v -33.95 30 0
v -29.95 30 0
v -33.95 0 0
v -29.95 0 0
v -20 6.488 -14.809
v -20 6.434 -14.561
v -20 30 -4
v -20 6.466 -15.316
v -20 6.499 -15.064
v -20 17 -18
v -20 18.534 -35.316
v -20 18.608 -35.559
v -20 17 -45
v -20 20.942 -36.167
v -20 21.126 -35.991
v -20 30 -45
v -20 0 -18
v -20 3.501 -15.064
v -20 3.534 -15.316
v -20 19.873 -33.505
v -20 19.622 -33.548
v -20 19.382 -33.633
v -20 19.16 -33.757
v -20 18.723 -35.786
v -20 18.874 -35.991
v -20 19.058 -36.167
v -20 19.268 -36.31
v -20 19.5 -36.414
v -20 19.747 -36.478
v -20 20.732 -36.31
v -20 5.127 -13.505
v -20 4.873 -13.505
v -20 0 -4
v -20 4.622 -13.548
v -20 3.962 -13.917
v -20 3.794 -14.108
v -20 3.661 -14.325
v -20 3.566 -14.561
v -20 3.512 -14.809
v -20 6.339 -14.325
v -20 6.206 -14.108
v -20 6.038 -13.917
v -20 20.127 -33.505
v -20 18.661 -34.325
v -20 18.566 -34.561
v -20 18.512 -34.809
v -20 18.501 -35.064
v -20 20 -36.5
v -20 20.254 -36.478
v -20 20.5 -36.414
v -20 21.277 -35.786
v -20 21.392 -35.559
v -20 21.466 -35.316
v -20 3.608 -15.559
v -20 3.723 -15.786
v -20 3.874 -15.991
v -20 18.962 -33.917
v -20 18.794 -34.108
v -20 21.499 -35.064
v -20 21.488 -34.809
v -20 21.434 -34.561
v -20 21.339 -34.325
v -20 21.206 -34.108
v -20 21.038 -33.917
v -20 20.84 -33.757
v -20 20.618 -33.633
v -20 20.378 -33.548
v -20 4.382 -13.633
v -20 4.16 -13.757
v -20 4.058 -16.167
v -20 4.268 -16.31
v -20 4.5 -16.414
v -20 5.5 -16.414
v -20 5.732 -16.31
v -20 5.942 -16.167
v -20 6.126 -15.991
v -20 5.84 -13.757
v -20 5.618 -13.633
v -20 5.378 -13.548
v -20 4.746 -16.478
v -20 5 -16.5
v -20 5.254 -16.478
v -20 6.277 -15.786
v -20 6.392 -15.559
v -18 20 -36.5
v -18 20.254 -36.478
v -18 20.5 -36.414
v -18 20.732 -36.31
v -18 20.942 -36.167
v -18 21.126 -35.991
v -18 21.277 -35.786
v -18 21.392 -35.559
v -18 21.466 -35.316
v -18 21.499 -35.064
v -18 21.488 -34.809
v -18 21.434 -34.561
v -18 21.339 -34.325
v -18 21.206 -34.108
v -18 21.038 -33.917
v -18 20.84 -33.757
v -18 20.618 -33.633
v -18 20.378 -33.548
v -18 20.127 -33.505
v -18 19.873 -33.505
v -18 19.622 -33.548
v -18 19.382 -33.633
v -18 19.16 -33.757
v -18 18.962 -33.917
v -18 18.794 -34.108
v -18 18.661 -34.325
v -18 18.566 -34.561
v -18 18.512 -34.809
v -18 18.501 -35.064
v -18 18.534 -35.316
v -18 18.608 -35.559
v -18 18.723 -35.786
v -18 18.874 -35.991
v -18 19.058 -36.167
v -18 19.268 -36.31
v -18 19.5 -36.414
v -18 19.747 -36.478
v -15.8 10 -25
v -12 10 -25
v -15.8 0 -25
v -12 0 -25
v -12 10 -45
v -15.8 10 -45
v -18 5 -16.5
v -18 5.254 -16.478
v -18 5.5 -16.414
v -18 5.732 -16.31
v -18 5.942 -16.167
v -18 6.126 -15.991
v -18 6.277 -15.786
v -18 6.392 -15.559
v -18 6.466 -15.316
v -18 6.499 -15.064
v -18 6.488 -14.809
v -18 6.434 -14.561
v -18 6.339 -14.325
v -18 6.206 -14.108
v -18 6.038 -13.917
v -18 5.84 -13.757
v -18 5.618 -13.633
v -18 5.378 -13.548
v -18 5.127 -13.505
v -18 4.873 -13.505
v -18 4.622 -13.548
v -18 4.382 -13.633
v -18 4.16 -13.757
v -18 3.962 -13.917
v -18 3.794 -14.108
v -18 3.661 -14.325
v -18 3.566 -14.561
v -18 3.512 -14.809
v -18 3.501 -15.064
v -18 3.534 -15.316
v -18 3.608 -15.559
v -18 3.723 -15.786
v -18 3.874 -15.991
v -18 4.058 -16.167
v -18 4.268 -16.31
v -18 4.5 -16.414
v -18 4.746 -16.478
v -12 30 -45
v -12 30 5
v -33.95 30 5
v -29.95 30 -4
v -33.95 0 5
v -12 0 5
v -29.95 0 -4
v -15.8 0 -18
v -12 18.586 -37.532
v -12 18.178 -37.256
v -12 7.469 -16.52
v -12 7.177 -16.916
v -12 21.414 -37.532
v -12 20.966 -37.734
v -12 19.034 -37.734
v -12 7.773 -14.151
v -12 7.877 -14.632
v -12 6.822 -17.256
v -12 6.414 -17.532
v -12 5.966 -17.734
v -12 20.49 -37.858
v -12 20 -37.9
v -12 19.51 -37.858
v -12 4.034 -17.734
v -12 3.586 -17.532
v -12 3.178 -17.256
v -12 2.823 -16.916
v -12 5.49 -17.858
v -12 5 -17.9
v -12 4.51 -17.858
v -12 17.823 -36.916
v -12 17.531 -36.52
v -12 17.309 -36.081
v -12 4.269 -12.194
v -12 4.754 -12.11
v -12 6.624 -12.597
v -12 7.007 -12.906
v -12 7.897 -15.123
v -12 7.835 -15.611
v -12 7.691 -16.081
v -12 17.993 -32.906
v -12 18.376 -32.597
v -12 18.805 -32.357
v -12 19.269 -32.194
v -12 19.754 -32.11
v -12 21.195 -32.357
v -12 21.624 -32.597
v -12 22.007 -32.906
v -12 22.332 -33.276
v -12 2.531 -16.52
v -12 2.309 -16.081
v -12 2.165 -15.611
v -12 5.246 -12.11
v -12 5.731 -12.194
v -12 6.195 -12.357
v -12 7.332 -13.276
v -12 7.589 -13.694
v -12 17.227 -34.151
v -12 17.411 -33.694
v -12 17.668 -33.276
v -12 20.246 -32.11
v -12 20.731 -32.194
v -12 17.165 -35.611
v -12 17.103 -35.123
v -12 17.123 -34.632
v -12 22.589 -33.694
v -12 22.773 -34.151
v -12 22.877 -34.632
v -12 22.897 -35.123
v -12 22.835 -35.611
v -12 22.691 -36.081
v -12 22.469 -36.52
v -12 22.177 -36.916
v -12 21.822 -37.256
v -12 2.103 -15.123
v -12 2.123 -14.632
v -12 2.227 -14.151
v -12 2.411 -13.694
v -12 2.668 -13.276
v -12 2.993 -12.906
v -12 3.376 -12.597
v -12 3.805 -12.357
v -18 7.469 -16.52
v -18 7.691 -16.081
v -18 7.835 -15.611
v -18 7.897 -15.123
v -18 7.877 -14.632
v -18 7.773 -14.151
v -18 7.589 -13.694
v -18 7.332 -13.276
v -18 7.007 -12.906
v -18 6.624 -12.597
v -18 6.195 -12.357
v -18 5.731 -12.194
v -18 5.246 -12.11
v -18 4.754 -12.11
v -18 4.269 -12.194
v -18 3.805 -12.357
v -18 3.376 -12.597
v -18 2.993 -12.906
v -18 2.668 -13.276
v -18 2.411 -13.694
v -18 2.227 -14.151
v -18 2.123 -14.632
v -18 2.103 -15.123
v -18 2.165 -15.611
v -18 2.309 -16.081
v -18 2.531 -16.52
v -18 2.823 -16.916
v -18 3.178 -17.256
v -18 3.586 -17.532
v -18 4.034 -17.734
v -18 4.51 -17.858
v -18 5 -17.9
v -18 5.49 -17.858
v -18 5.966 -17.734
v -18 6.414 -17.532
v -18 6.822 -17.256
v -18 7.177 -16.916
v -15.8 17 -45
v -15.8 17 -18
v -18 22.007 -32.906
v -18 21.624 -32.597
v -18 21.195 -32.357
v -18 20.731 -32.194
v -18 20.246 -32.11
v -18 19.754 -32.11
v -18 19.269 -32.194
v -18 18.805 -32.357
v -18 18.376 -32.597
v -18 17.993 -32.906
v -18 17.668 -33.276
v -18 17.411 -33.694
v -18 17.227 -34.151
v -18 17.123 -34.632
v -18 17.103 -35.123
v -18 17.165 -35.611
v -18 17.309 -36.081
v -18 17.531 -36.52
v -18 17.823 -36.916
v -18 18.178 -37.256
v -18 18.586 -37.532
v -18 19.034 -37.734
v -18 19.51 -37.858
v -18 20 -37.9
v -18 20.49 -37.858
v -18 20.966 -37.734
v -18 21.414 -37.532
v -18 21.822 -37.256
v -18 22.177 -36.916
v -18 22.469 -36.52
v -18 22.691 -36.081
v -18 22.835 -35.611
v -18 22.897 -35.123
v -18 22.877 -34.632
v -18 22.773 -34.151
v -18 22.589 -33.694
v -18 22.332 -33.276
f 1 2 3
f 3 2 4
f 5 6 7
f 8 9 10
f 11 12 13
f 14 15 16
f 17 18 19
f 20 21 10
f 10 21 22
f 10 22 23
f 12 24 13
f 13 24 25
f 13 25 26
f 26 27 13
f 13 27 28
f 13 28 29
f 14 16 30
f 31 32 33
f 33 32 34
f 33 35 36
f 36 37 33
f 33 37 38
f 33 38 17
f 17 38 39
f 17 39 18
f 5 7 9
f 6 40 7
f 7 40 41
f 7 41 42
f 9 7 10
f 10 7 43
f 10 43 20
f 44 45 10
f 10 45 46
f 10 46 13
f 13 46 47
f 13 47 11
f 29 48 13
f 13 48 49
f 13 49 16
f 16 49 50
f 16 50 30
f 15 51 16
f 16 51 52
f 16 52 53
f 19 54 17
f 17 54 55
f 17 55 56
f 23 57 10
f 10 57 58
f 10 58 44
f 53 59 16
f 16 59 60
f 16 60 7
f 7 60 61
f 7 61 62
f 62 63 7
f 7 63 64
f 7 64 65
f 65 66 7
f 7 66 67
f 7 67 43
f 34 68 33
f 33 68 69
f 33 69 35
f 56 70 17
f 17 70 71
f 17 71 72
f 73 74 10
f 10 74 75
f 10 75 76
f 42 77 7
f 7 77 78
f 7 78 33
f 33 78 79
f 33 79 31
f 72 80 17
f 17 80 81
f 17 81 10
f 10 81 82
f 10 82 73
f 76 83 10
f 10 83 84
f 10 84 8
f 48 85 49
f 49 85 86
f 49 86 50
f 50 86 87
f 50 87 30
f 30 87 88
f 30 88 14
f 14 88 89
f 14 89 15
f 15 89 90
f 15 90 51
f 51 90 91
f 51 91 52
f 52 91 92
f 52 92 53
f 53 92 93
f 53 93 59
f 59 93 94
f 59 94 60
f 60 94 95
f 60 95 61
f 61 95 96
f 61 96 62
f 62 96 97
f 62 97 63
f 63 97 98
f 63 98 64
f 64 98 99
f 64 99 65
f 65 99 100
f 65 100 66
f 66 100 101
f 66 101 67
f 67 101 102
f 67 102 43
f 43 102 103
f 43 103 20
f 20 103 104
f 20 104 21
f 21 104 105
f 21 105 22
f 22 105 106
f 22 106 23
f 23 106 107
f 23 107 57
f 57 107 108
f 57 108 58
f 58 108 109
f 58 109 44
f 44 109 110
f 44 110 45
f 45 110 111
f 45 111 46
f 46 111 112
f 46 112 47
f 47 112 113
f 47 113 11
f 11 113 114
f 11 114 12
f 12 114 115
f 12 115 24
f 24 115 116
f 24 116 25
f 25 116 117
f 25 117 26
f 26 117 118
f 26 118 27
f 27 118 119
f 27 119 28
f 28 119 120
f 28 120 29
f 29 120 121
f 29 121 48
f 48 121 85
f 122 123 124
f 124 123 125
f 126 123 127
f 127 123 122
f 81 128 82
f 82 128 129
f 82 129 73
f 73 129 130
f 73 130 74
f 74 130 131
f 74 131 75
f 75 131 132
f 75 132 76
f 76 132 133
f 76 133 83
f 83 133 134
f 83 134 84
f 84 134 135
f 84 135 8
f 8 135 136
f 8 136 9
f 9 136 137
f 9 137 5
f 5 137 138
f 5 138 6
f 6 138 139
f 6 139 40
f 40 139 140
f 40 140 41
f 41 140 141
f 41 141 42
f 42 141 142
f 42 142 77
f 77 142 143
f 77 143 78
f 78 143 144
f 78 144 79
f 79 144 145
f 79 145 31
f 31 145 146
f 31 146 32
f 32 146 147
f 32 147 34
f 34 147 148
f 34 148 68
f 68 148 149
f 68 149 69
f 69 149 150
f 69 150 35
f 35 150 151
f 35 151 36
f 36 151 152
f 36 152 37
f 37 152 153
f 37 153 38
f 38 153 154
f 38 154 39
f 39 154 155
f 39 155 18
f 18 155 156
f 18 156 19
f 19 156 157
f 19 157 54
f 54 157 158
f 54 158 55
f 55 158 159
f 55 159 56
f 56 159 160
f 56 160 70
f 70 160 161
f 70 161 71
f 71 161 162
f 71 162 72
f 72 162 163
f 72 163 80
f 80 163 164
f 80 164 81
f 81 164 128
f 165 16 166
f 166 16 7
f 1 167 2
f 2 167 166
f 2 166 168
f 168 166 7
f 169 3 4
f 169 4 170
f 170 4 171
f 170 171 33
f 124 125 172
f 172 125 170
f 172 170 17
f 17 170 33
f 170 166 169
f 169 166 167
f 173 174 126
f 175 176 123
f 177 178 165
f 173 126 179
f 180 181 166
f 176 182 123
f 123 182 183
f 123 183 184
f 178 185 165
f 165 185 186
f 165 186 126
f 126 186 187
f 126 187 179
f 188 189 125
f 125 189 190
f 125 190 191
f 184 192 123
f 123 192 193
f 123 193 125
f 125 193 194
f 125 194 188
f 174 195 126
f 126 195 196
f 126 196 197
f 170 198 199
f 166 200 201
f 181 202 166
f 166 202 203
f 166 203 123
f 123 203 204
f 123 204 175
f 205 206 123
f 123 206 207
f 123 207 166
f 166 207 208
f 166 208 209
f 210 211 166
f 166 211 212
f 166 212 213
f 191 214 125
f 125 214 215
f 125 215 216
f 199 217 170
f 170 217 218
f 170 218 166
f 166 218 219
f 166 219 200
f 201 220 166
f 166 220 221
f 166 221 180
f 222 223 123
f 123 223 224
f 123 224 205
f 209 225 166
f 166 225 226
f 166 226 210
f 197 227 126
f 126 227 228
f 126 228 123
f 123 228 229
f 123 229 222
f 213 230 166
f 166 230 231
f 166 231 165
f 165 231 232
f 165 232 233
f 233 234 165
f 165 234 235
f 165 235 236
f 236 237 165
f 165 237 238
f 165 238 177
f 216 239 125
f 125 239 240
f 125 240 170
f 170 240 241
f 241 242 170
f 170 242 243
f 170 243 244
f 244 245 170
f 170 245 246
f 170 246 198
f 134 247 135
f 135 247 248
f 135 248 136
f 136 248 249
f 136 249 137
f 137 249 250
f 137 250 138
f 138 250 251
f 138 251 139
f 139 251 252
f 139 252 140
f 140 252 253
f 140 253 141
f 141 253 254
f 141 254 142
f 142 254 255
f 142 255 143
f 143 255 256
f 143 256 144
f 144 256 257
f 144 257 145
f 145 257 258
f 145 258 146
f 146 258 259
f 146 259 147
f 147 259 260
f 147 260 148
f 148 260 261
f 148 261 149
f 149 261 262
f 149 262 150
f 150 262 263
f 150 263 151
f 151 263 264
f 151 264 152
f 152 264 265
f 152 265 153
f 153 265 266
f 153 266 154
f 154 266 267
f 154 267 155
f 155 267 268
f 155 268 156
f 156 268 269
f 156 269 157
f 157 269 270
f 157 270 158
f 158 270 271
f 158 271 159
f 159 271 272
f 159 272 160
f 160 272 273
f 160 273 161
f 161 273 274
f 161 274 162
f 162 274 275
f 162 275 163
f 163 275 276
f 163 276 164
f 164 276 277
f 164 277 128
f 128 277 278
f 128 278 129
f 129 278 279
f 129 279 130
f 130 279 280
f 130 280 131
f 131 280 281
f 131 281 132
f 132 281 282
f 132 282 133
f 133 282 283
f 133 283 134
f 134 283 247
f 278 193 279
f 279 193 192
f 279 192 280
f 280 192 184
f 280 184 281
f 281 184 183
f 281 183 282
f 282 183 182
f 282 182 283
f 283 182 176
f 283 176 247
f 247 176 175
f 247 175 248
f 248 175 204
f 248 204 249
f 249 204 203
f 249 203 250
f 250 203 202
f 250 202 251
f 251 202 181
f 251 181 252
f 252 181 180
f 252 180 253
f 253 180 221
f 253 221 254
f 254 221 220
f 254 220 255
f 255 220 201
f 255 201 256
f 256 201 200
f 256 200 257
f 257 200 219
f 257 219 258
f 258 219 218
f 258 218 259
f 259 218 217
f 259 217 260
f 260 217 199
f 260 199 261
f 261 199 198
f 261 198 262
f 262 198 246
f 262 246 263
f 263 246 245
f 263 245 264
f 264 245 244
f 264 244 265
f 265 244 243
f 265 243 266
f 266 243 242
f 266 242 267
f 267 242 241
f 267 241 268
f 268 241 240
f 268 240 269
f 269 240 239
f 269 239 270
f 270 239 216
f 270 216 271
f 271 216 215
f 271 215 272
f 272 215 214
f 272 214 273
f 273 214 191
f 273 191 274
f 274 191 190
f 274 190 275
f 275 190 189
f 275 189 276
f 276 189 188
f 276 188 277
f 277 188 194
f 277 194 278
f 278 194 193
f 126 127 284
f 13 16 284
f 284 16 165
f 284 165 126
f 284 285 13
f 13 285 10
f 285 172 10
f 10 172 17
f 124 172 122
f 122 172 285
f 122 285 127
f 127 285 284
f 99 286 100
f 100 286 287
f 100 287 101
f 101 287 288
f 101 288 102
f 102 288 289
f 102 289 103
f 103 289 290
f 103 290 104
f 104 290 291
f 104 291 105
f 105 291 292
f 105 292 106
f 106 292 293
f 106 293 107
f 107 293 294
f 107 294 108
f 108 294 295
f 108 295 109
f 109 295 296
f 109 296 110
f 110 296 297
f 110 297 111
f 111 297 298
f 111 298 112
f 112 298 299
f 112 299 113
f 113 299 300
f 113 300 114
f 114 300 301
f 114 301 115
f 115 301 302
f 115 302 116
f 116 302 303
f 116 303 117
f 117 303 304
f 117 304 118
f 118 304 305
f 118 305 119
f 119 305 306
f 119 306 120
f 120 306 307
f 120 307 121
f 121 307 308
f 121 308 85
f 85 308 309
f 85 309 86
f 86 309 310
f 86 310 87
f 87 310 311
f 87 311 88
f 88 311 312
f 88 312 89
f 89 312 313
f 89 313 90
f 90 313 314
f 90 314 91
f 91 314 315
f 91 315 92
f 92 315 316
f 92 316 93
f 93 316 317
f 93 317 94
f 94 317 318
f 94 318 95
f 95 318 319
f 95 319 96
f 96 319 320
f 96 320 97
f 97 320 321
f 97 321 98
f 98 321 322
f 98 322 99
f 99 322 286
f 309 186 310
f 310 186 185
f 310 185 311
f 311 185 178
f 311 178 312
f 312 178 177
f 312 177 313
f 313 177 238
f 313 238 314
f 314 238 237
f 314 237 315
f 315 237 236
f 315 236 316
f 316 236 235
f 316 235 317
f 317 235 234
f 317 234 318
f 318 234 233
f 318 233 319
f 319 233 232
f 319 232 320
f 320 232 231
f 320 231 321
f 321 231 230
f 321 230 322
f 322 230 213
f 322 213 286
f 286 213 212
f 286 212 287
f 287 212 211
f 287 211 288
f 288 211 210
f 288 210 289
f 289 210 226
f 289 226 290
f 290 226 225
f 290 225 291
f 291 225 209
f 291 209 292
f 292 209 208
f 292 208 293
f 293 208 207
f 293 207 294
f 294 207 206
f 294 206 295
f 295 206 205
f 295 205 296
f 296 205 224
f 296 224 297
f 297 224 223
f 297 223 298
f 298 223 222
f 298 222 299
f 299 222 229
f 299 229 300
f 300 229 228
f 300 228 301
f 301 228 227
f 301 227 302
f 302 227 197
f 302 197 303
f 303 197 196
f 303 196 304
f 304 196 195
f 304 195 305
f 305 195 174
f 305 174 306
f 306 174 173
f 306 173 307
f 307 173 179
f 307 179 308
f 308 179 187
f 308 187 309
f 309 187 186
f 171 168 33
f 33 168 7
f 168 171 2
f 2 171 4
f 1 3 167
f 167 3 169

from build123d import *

# Parameters (mm, degrees)
SKETCH_1_W           = 40
SKETCH_1_H           = 30
EXTRUDE_1_DEPTH      = 5
SKETCH_2_W           = 5
SKETCH_2_H           = 30
EXTRUDE_2_DEPTH      = 20
SKETCH_3_W           = 20
SKETCH_3_H           = 30
EXTRUDE_3_DEPTH      = 5
SKETCH_4_W           = 15
SKETCH_4_H           = 30
CUT_EXTRUDE_1_DEPTH  = 5
SKETCH_6_R           = 1.5
CUT_EXTRUDE_3_DEPTH  = 5
SKETCH_7_W           = 15
SKETCH_7_H           = 30
CUT_EXTRUDE_4_DEPTH  = 5
SKETCH_8_W           = 5
SKETCH_8_H           = 30
EXTRUDE_4_DEPTH      = 20
SKETCH_9_W           = 30
SKETCH_9_H           = 30
EXTRUDE_5_DEPTH      = 3
SKETCH_10_R          = 1.5
CUT_EXTRUDE_5_DEPTH  = 13
SKETCH_11_R          = 2.9
CUT_EXTRUDE_6_DEPTH  = 6
SKETCH_12_W          = 8
SKETCH_12_H          = 20
EXTRUDE_6_DEPTH      = 20
CUT_EXTRUDE_7_DEPTH  = 4.2
SKETCH_14_R          = 1.5
CUT_EXTRUDE_8_DEPTH  = 14.2
SKETCH_15_R          = 2.9
CUT_EXTRUDE_9_DEPTH  = 6
SKETCH_16_W          = 4
SKETCH_16_H          = 30
EXTRUDE_7_DEPTH      = 9.95
SKETCH_17_W          = 5
SKETCH_17_H          = 30
CUT_EXTRUDE_10_DEPTH = 26.05


with BuildPart() as part:
    # 草图1 → 凸台-拉伸1 (new body)
    with BuildSketch(Plane.XY):
        with Locations((-20, 15)):
            Rectangle(SKETCH_1_W, SKETCH_1_H)
    extrude(amount=EXTRUDE_1_DEPTH)

    # 草图2 → 凸台-拉伸2 (add)
    with BuildSketch(Plane.ZY.offset(40)):
        with Locations((2.5, 15)):
            Rectangle(SKETCH_2_W, SKETCH_2_H)
    extrude(amount=EXTRUDE_2_DEPTH)

    # 草图3 → 凸台-拉伸3 (add)
    with BuildSketch(Plane(origin=(0, 0, 0), x_dir=(-1, 0, 0), z_dir=(0, 0, -1))):
        with Locations((10, 15)):
            Rectangle(SKETCH_3_W, SKETCH_3_H)
    extrude(amount=EXTRUDE_3_DEPTH)

    # 草图4 → 切除-拉伸1 (cut)
    with BuildSketch(Plane.XY.offset(5)):
        with Locations((-7.5, 15)):
            Rectangle(SKETCH_4_W, SKETCH_4_H)
    extrude(amount=-CUT_EXTRUDE_1_DEPTH, mode=Mode.SUBTRACT)

    # 草图6 → 切除-拉伸3 (cut)
    with BuildSketch(Plane.XY):
        with Locations((-7.5, 25)):
            Circle(SKETCH_6_R)
        with Locations((-7.5, 5)):
            Circle(SKETCH_6_R)
    extrude(amount=-CUT_EXTRUDE_3_DEPTH, mode=Mode.SUBTRACT)

    # 草图7 → 切除-拉伸4 (cut)
    with BuildSketch(Plane.XY):
        with Locations((-7.5, 15)):
            Rectangle(SKETCH_7_W, SKETCH_7_H)
    extrude(amount=-CUT_EXTRUDE_4_DEPTH, mode=Mode.SUBTRACT)

    # 草图8 → 凸台-拉伸4 (add)
    with BuildSketch(Plane(origin=(0, 0, -5), x_dir=(-1, 0, 0), z_dir=(0, 0, -1))):
        with Locations((17.5, 15)):
            Rectangle(SKETCH_8_W, SKETCH_8_H)
    extrude(amount=EXTRUDE_4_DEPTH)

    # 草图9 → 凸台-拉伸5 (add)
    with BuildSketch(Plane(origin=(-15, 0, 0), x_dir=(0, 0, -1), z_dir=(1, 0, 0))):
        with Locations((10, 15)):
            Rectangle(SKETCH_9_W, SKETCH_9_H)
    extrude(amount=EXTRUDE_5_DEPTH)

    # 草图10 → 切除-拉伸5 (cut)
    with BuildSketch(Plane(origin=(-12, 0, 0), x_dir=(0, 0, -1), z_dir=(1, 0, 0))):
        with Locations((15, 5)):
            Circle(SKETCH_10_R)
    extrude(amount=-CUT_EXTRUDE_5_DEPTH, mode=Mode.SUBTRACT)

    # 草图11 → 切除-拉伸6 (cut)
    with BuildSketch(Plane(origin=(-12, 0, 0), x_dir=(0, 0, -1), z_dir=(1, 0, 0))):
        with Locations((15, 5)):
            Circle(SKETCH_11_R)
    extrude(amount=-CUT_EXTRUDE_6_DEPTH, mode=Mode.SUBTRACT)

    # 草图12 → 凸台-拉伸6 (add)
    with BuildSketch(Plane(origin=(0, 0, -25), x_dir=(-1, 0, 0), z_dir=(0, 0, -1))):
        with Locations((16, 20)):
            Rectangle(SKETCH_12_W, SKETCH_12_H)
    extrude(amount=EXTRUDE_6_DEPTH)

    # 草图13 → 切除-拉伸7 (cut)
    with BuildSketch(Plane.ZY.offset(20)):
        Polygon((-45, 17), (-25, 17), (-18, 17), (-18, 0), (-25, 0), (-25, 10), (-45, 10), align=None)
    extrude(amount=-CUT_EXTRUDE_7_DEPTH, mode=Mode.SUBTRACT)

    # 草图14 → 切除-拉伸8 (cut)
    with BuildSketch(Plane(origin=(-12, 0, 0), x_dir=(0, 0, -1), z_dir=(1, 0, 0))):
        with Locations((35, 20)):
            Circle(SKETCH_14_R)
    extrude(amount=-CUT_EXTRUDE_8_DEPTH, mode=Mode.SUBTRACT)

    # 草图15 → 切除-拉伸9 (cut)
    with BuildSketch(Plane(origin=(-12, 0, 0), x_dir=(0, 0, -1), z_dir=(1, 0, 0))):
        with Locations((35, 20)):
            Circle(SKETCH_15_R)
    extrude(amount=-CUT_EXTRUDE_9_DEPTH, mode=Mode.SUBTRACT)

    # 草图16 → 凸台-拉伸7 (add)
    with BuildSketch(Plane.ZY.offset(20)):
        with Locations((-2, 15)):
            Rectangle(SKETCH_16_W, SKETCH_16_H)
    extrude(amount=EXTRUDE_7_DEPTH)

    # 草图17 → 切除-拉伸10 (cut)
    with BuildSketch(Plane.ZY.offset(60)):
        with Locations((2.5, 15)):
            Rectangle(SKETCH_17_W, SKETCH_17_H)
    extrude(amount=-CUT_EXTRUDE_10_DEPTH, mode=Mode.SUBTRACT)


solid = part.part
